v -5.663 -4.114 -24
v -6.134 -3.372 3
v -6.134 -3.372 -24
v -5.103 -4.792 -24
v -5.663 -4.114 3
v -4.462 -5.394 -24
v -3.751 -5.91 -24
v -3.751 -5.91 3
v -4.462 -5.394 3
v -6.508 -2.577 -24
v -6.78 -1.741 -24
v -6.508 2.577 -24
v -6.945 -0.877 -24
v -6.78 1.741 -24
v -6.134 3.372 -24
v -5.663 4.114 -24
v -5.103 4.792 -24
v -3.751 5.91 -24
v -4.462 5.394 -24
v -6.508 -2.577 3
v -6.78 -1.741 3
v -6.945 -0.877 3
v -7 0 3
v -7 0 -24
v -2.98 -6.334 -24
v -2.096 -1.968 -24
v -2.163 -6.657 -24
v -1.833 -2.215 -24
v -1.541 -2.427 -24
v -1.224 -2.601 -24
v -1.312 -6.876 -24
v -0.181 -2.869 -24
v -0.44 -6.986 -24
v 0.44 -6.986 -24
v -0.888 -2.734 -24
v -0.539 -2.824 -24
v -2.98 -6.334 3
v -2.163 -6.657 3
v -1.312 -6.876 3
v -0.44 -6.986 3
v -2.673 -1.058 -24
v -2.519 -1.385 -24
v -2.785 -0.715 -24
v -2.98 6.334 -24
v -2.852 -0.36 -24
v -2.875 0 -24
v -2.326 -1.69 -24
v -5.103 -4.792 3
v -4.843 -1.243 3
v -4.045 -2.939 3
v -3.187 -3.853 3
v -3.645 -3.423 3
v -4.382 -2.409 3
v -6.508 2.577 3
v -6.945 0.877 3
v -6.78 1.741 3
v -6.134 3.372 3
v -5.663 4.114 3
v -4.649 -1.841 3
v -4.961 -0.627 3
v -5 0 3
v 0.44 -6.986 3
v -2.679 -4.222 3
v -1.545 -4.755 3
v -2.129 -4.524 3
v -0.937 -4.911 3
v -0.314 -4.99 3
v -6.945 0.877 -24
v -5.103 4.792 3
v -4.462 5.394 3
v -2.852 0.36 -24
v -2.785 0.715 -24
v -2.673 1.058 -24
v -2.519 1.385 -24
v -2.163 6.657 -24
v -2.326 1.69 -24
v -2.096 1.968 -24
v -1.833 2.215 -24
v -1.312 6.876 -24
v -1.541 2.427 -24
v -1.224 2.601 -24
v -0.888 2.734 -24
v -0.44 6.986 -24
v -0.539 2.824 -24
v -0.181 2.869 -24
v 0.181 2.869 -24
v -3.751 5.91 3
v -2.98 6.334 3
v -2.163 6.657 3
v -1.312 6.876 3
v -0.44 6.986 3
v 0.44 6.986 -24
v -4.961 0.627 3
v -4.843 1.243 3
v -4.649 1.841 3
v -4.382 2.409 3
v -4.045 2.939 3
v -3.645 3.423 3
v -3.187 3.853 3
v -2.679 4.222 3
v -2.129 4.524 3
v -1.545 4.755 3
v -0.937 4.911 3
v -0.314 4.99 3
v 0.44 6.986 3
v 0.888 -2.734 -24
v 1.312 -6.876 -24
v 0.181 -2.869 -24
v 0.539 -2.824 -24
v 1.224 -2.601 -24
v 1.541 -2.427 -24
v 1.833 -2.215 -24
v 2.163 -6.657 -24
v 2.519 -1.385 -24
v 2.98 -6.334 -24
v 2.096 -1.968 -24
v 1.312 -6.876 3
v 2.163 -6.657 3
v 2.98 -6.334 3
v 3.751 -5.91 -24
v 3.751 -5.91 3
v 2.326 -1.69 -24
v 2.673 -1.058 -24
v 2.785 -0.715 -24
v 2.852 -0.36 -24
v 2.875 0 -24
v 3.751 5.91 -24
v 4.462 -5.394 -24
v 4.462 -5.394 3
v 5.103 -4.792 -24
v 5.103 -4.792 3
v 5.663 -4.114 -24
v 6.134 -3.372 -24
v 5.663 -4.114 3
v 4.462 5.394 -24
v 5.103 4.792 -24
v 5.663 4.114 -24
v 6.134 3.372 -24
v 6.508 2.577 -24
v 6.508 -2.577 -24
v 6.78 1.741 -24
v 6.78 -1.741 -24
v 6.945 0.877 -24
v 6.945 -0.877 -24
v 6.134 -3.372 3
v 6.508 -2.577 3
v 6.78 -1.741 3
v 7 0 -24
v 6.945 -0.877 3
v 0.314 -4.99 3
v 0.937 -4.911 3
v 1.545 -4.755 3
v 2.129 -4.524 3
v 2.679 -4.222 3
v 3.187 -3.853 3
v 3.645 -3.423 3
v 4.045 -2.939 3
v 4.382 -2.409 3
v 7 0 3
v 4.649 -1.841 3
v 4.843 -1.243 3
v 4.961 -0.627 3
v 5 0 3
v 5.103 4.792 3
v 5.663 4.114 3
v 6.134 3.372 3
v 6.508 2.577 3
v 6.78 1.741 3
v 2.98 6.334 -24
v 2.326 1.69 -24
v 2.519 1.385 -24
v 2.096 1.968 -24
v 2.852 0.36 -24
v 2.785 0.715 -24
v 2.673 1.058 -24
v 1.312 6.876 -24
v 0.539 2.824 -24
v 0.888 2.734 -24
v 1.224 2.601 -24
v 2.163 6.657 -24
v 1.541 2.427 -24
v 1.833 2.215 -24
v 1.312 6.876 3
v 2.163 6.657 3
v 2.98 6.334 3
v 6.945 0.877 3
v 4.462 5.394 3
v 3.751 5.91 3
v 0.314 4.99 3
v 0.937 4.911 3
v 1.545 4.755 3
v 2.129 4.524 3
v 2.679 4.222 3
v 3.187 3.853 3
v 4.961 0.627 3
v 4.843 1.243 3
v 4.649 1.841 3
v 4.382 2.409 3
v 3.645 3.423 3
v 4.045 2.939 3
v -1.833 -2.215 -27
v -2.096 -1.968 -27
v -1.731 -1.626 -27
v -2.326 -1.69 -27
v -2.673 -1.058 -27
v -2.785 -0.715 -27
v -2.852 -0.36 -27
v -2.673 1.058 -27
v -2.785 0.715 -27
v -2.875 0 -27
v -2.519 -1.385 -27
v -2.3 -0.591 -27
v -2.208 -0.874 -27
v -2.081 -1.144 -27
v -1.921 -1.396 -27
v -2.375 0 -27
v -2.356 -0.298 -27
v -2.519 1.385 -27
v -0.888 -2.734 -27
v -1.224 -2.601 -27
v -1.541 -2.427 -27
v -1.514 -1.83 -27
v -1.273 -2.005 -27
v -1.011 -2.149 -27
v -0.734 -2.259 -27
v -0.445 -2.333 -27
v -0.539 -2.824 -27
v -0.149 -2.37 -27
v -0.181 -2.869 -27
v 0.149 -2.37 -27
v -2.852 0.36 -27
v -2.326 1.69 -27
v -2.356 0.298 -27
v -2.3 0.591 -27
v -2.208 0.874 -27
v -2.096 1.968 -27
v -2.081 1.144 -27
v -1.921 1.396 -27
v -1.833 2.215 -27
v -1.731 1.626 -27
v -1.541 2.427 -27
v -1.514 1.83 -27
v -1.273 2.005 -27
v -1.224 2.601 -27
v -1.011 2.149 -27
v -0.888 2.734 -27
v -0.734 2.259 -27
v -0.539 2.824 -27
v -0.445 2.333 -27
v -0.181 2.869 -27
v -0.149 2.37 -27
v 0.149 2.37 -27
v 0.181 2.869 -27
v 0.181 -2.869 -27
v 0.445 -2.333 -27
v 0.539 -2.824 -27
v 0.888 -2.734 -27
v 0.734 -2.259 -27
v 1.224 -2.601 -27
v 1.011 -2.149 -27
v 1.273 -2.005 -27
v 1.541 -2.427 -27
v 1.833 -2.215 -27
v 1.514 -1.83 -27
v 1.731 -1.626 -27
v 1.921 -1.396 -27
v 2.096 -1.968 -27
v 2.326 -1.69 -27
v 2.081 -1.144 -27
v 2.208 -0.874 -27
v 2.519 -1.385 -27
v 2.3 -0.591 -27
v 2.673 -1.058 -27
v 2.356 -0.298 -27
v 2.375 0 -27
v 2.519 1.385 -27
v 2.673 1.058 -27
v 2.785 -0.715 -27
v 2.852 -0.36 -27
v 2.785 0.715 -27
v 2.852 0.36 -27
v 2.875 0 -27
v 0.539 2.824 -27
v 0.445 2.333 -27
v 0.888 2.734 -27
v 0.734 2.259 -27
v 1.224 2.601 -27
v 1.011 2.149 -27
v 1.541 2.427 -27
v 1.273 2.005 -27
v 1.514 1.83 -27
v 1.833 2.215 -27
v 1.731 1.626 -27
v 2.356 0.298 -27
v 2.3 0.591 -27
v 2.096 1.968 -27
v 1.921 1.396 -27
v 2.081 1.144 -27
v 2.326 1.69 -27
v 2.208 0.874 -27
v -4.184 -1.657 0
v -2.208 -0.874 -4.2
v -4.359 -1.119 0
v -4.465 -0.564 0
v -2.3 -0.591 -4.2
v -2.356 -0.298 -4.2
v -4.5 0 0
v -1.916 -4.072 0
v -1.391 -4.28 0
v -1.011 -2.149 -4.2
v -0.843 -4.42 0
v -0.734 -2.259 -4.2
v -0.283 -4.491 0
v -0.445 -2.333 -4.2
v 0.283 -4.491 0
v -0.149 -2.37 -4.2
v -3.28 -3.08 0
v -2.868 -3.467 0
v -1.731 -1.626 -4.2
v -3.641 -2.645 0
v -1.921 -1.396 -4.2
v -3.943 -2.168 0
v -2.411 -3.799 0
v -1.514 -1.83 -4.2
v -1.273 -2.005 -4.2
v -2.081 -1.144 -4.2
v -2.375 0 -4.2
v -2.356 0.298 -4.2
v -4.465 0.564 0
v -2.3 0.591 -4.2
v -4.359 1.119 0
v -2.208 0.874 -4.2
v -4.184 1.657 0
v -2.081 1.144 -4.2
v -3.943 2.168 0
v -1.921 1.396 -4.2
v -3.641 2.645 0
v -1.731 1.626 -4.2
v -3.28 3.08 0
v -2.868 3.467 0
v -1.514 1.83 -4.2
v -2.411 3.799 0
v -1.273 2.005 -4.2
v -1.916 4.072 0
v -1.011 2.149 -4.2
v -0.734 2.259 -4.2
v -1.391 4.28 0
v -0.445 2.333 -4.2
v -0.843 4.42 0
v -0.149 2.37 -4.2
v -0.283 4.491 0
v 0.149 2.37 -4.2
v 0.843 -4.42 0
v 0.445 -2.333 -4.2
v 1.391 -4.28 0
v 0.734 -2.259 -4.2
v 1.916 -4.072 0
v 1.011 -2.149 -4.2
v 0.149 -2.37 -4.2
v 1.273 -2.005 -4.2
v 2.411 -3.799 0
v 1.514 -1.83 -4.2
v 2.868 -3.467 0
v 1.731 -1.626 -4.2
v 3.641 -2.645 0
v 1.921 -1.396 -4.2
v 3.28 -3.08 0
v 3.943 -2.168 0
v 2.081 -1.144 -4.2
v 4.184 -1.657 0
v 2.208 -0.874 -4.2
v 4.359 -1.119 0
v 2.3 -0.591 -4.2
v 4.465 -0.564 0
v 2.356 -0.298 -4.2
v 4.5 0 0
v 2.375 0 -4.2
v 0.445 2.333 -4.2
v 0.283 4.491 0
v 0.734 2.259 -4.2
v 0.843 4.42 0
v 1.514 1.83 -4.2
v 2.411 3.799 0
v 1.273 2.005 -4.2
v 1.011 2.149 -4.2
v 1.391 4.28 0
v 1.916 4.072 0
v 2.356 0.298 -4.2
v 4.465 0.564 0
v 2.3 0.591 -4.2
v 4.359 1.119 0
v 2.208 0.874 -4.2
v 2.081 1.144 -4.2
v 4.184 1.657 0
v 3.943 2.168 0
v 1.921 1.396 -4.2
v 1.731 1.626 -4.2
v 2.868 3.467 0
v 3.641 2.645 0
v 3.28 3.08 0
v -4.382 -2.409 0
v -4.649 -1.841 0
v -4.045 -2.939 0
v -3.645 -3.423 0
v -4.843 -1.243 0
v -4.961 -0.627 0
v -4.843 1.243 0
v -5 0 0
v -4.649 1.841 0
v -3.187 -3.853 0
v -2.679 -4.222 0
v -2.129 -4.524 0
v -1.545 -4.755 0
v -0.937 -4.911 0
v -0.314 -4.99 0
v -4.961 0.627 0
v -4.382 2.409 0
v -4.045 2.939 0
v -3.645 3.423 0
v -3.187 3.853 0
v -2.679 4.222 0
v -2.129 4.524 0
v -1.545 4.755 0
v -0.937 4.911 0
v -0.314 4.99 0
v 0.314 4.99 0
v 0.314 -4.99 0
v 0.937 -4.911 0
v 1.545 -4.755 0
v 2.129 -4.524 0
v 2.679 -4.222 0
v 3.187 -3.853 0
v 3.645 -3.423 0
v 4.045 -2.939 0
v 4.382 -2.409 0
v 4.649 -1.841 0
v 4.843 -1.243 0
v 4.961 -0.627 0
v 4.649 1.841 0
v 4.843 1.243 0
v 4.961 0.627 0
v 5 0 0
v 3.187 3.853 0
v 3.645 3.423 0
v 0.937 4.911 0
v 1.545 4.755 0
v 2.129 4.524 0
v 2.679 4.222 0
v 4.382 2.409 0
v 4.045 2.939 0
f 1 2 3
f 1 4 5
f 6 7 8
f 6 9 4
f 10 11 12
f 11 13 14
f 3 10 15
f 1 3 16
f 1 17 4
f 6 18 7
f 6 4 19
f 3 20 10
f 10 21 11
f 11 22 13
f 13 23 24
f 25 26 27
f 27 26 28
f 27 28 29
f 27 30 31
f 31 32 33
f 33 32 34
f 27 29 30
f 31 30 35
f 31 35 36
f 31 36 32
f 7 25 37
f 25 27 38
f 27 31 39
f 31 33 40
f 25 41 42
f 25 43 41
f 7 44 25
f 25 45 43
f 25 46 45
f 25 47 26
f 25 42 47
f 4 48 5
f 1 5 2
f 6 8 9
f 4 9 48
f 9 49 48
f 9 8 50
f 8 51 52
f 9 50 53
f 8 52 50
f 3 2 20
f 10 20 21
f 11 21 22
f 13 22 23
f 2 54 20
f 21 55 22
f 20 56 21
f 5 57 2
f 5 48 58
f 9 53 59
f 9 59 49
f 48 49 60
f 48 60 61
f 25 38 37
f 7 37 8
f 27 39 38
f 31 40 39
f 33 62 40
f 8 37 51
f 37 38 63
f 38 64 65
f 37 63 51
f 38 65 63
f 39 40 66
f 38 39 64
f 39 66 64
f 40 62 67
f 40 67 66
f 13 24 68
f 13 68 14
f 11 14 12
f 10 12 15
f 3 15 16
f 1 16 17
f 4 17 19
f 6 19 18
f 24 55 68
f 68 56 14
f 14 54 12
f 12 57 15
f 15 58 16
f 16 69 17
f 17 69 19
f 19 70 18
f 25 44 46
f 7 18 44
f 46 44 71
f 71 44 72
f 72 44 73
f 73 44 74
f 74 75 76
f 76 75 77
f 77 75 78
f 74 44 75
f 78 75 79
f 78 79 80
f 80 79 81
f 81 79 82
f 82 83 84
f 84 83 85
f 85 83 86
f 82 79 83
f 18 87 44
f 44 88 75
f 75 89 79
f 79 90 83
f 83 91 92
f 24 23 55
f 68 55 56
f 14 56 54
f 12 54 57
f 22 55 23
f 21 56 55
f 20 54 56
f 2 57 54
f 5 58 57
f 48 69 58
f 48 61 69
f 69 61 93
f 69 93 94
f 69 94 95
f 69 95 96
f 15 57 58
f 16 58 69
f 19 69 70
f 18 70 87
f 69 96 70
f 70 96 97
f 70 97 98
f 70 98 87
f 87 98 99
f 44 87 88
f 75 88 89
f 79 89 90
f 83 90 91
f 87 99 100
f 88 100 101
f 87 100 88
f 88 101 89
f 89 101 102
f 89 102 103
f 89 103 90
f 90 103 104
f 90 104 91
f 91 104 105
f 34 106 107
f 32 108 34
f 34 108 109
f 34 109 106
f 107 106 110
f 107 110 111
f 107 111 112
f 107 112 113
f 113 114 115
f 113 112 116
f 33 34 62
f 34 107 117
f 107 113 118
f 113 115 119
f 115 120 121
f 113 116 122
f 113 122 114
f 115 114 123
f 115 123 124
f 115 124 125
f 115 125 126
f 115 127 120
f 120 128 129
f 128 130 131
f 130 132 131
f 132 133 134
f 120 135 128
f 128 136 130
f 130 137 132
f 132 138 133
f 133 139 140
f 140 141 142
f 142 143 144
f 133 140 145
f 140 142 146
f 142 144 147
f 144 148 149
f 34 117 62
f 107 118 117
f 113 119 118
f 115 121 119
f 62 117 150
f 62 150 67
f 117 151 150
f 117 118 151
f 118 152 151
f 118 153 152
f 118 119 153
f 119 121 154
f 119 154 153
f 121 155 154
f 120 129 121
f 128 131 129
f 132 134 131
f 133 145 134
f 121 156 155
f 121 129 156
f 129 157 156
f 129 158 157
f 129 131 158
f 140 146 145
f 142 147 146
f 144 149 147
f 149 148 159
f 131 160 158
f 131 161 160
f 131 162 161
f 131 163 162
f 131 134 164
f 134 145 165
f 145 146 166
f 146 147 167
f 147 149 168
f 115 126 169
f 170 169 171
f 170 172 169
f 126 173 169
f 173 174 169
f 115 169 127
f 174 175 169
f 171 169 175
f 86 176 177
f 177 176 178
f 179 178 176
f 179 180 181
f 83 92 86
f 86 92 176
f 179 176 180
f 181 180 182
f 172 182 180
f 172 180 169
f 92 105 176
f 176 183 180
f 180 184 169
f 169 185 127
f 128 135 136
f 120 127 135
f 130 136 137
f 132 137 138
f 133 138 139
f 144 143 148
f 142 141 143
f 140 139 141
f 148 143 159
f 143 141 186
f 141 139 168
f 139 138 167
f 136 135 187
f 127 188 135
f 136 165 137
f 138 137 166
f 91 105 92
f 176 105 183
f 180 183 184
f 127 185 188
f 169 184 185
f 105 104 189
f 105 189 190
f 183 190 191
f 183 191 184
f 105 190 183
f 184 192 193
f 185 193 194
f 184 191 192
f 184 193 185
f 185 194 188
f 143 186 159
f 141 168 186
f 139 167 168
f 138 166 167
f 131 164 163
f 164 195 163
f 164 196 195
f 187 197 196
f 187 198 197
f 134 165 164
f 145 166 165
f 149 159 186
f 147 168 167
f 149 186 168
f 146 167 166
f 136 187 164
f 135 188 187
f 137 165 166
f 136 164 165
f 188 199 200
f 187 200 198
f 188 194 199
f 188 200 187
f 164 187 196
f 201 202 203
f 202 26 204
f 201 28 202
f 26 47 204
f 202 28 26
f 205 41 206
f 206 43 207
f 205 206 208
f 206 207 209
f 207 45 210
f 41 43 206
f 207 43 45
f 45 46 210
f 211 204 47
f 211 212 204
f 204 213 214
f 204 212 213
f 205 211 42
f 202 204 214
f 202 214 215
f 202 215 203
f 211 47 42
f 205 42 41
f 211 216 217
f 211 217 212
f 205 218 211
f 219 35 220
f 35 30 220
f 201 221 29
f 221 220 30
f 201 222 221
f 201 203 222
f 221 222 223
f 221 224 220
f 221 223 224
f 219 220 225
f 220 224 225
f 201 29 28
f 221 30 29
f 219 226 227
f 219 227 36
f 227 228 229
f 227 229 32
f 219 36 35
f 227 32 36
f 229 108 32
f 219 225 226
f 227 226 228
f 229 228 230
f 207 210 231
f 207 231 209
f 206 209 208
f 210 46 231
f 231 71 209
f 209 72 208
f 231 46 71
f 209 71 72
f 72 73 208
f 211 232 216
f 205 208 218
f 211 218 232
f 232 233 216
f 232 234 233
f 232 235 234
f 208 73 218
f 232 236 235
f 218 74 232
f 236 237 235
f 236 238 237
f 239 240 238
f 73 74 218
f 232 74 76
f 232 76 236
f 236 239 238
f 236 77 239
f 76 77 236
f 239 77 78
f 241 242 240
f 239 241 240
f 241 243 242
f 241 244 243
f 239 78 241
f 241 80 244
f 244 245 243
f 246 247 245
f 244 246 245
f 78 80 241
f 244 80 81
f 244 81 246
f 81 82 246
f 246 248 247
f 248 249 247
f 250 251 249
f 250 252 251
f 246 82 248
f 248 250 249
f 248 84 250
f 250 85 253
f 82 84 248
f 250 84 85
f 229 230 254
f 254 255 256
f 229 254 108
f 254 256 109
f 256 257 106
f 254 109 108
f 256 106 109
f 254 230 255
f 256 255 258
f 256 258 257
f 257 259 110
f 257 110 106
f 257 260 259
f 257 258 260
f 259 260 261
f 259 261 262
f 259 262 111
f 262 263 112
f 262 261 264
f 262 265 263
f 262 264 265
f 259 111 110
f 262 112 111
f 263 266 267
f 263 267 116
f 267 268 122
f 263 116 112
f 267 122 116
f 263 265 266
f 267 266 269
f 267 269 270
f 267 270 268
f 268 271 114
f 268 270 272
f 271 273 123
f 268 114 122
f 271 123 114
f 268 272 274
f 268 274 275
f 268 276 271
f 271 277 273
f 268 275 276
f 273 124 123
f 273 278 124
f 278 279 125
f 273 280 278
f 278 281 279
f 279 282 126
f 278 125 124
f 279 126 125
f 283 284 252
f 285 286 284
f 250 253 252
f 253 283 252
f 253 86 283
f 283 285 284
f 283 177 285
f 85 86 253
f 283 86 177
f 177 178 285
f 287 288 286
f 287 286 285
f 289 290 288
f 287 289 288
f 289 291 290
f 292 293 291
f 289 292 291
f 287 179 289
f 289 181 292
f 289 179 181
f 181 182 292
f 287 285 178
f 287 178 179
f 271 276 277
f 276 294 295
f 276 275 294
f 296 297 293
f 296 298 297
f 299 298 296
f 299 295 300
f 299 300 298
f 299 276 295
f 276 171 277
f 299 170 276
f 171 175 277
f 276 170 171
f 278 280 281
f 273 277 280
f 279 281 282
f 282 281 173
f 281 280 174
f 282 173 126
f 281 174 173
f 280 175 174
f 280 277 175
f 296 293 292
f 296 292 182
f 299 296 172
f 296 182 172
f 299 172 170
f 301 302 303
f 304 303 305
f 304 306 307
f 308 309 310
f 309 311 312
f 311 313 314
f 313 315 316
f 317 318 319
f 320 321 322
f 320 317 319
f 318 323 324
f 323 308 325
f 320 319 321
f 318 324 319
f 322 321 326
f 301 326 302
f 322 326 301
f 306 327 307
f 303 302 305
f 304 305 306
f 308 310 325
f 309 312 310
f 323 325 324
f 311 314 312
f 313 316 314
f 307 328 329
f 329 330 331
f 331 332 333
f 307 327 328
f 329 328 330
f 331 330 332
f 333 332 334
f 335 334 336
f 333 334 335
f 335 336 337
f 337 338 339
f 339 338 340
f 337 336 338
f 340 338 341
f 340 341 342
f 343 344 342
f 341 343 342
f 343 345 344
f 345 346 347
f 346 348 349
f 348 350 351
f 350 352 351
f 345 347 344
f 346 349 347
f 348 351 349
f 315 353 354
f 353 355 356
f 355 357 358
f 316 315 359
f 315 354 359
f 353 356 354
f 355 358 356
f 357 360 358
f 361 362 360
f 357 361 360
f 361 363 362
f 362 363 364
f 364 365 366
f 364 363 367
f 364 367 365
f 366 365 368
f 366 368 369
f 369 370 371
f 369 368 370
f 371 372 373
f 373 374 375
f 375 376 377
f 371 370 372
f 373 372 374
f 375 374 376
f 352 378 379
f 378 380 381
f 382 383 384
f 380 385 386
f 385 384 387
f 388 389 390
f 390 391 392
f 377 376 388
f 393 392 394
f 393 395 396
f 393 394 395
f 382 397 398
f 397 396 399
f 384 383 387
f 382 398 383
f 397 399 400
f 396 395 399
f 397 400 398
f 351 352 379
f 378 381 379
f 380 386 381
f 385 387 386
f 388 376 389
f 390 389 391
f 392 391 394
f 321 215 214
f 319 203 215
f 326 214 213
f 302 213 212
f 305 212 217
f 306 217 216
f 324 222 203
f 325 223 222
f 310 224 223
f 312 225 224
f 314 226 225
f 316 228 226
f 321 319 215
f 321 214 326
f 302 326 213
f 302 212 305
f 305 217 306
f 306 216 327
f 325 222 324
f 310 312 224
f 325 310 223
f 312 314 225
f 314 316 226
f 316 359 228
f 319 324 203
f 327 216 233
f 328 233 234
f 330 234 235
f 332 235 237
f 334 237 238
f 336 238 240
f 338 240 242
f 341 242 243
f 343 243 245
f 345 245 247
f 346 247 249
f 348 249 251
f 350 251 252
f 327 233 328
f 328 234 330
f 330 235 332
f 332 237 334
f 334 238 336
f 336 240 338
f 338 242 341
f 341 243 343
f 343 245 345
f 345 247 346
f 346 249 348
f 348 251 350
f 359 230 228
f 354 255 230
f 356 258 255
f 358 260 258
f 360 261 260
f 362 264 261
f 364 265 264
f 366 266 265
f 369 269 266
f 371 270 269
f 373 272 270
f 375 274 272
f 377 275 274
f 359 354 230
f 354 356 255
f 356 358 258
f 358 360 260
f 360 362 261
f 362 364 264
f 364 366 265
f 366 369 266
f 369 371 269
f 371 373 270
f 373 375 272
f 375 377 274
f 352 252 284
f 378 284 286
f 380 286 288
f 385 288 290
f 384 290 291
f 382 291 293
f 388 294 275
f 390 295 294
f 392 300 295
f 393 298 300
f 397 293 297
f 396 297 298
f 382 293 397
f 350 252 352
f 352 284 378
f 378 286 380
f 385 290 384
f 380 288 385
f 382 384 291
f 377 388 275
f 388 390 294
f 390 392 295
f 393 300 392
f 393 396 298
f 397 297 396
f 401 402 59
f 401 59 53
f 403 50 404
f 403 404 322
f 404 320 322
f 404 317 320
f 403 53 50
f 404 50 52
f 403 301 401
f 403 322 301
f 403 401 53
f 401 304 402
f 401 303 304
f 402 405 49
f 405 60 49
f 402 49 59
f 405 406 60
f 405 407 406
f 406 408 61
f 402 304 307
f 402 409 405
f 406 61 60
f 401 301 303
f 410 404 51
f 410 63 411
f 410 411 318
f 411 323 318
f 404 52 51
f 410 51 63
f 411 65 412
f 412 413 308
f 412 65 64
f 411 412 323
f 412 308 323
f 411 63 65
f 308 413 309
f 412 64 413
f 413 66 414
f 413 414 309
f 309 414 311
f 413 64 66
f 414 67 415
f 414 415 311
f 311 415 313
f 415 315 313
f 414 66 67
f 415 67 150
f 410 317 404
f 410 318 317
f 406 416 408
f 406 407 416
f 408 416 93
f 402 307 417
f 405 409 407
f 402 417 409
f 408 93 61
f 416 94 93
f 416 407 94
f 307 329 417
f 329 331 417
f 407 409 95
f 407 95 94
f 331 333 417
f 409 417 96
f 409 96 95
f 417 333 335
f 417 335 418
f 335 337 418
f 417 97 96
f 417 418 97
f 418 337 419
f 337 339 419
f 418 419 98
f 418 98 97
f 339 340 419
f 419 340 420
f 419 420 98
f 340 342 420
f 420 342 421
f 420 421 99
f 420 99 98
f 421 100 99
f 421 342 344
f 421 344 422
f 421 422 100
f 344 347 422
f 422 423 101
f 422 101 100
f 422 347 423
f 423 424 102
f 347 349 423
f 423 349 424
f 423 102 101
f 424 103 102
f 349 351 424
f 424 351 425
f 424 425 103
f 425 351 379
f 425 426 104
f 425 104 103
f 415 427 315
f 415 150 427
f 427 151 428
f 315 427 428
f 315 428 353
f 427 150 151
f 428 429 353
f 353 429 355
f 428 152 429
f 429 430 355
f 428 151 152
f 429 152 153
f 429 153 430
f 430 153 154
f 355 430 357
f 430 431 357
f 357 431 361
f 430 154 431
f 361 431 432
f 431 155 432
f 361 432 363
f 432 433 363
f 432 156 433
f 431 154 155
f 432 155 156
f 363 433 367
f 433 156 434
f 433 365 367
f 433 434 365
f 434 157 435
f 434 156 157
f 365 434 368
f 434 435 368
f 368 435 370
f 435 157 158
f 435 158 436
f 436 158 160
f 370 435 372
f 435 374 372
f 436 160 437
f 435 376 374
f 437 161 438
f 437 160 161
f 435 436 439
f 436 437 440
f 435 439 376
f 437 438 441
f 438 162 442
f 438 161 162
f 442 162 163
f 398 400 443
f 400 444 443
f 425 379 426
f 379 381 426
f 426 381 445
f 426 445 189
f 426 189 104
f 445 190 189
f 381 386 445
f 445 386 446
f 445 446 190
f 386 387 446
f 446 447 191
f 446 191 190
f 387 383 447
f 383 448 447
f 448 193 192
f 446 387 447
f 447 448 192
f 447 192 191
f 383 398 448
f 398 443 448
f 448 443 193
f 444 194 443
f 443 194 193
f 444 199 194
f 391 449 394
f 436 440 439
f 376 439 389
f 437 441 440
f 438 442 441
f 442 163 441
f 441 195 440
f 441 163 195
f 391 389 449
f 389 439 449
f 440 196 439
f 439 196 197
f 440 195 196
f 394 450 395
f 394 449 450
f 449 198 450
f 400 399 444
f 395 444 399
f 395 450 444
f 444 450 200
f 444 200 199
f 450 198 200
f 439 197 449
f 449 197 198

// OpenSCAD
$fn = 50;

difference() {
	union() {
		translate(v = [0, 0, -24.0]) {
			cylinder(h = 27, r = 7.0);
		}
		#translate(v = [0, 0, -27.0]) {
			cylinder(h = 27, r = 2.875);
		}
	}
	union() {
		translate(v = [0, 0, 0]) {
			rotate(a = [0, 0, 0]) {
				difference() {
					union() {
						translate(v = [0, 0, -27.0]) {
							cylinder(h = 27, r = 2.25);
						}
						translate(v = [0, 0, -4.2]) {
							cylinder(h = 4.2, r1 = 2.375, r2 = 4.5);
						}
						translate(v = [0, 0, -27.0]) {
							cylinder(h = 27, r = 2.375);
						}
						translate(v = [0, 0, -27.0]) {
							cylinder(h = 27, r = 2.25);
						}
					}
					union();
				}
			}
		}
		#cylinder(h = 3, r = 5.0);
	}
}
